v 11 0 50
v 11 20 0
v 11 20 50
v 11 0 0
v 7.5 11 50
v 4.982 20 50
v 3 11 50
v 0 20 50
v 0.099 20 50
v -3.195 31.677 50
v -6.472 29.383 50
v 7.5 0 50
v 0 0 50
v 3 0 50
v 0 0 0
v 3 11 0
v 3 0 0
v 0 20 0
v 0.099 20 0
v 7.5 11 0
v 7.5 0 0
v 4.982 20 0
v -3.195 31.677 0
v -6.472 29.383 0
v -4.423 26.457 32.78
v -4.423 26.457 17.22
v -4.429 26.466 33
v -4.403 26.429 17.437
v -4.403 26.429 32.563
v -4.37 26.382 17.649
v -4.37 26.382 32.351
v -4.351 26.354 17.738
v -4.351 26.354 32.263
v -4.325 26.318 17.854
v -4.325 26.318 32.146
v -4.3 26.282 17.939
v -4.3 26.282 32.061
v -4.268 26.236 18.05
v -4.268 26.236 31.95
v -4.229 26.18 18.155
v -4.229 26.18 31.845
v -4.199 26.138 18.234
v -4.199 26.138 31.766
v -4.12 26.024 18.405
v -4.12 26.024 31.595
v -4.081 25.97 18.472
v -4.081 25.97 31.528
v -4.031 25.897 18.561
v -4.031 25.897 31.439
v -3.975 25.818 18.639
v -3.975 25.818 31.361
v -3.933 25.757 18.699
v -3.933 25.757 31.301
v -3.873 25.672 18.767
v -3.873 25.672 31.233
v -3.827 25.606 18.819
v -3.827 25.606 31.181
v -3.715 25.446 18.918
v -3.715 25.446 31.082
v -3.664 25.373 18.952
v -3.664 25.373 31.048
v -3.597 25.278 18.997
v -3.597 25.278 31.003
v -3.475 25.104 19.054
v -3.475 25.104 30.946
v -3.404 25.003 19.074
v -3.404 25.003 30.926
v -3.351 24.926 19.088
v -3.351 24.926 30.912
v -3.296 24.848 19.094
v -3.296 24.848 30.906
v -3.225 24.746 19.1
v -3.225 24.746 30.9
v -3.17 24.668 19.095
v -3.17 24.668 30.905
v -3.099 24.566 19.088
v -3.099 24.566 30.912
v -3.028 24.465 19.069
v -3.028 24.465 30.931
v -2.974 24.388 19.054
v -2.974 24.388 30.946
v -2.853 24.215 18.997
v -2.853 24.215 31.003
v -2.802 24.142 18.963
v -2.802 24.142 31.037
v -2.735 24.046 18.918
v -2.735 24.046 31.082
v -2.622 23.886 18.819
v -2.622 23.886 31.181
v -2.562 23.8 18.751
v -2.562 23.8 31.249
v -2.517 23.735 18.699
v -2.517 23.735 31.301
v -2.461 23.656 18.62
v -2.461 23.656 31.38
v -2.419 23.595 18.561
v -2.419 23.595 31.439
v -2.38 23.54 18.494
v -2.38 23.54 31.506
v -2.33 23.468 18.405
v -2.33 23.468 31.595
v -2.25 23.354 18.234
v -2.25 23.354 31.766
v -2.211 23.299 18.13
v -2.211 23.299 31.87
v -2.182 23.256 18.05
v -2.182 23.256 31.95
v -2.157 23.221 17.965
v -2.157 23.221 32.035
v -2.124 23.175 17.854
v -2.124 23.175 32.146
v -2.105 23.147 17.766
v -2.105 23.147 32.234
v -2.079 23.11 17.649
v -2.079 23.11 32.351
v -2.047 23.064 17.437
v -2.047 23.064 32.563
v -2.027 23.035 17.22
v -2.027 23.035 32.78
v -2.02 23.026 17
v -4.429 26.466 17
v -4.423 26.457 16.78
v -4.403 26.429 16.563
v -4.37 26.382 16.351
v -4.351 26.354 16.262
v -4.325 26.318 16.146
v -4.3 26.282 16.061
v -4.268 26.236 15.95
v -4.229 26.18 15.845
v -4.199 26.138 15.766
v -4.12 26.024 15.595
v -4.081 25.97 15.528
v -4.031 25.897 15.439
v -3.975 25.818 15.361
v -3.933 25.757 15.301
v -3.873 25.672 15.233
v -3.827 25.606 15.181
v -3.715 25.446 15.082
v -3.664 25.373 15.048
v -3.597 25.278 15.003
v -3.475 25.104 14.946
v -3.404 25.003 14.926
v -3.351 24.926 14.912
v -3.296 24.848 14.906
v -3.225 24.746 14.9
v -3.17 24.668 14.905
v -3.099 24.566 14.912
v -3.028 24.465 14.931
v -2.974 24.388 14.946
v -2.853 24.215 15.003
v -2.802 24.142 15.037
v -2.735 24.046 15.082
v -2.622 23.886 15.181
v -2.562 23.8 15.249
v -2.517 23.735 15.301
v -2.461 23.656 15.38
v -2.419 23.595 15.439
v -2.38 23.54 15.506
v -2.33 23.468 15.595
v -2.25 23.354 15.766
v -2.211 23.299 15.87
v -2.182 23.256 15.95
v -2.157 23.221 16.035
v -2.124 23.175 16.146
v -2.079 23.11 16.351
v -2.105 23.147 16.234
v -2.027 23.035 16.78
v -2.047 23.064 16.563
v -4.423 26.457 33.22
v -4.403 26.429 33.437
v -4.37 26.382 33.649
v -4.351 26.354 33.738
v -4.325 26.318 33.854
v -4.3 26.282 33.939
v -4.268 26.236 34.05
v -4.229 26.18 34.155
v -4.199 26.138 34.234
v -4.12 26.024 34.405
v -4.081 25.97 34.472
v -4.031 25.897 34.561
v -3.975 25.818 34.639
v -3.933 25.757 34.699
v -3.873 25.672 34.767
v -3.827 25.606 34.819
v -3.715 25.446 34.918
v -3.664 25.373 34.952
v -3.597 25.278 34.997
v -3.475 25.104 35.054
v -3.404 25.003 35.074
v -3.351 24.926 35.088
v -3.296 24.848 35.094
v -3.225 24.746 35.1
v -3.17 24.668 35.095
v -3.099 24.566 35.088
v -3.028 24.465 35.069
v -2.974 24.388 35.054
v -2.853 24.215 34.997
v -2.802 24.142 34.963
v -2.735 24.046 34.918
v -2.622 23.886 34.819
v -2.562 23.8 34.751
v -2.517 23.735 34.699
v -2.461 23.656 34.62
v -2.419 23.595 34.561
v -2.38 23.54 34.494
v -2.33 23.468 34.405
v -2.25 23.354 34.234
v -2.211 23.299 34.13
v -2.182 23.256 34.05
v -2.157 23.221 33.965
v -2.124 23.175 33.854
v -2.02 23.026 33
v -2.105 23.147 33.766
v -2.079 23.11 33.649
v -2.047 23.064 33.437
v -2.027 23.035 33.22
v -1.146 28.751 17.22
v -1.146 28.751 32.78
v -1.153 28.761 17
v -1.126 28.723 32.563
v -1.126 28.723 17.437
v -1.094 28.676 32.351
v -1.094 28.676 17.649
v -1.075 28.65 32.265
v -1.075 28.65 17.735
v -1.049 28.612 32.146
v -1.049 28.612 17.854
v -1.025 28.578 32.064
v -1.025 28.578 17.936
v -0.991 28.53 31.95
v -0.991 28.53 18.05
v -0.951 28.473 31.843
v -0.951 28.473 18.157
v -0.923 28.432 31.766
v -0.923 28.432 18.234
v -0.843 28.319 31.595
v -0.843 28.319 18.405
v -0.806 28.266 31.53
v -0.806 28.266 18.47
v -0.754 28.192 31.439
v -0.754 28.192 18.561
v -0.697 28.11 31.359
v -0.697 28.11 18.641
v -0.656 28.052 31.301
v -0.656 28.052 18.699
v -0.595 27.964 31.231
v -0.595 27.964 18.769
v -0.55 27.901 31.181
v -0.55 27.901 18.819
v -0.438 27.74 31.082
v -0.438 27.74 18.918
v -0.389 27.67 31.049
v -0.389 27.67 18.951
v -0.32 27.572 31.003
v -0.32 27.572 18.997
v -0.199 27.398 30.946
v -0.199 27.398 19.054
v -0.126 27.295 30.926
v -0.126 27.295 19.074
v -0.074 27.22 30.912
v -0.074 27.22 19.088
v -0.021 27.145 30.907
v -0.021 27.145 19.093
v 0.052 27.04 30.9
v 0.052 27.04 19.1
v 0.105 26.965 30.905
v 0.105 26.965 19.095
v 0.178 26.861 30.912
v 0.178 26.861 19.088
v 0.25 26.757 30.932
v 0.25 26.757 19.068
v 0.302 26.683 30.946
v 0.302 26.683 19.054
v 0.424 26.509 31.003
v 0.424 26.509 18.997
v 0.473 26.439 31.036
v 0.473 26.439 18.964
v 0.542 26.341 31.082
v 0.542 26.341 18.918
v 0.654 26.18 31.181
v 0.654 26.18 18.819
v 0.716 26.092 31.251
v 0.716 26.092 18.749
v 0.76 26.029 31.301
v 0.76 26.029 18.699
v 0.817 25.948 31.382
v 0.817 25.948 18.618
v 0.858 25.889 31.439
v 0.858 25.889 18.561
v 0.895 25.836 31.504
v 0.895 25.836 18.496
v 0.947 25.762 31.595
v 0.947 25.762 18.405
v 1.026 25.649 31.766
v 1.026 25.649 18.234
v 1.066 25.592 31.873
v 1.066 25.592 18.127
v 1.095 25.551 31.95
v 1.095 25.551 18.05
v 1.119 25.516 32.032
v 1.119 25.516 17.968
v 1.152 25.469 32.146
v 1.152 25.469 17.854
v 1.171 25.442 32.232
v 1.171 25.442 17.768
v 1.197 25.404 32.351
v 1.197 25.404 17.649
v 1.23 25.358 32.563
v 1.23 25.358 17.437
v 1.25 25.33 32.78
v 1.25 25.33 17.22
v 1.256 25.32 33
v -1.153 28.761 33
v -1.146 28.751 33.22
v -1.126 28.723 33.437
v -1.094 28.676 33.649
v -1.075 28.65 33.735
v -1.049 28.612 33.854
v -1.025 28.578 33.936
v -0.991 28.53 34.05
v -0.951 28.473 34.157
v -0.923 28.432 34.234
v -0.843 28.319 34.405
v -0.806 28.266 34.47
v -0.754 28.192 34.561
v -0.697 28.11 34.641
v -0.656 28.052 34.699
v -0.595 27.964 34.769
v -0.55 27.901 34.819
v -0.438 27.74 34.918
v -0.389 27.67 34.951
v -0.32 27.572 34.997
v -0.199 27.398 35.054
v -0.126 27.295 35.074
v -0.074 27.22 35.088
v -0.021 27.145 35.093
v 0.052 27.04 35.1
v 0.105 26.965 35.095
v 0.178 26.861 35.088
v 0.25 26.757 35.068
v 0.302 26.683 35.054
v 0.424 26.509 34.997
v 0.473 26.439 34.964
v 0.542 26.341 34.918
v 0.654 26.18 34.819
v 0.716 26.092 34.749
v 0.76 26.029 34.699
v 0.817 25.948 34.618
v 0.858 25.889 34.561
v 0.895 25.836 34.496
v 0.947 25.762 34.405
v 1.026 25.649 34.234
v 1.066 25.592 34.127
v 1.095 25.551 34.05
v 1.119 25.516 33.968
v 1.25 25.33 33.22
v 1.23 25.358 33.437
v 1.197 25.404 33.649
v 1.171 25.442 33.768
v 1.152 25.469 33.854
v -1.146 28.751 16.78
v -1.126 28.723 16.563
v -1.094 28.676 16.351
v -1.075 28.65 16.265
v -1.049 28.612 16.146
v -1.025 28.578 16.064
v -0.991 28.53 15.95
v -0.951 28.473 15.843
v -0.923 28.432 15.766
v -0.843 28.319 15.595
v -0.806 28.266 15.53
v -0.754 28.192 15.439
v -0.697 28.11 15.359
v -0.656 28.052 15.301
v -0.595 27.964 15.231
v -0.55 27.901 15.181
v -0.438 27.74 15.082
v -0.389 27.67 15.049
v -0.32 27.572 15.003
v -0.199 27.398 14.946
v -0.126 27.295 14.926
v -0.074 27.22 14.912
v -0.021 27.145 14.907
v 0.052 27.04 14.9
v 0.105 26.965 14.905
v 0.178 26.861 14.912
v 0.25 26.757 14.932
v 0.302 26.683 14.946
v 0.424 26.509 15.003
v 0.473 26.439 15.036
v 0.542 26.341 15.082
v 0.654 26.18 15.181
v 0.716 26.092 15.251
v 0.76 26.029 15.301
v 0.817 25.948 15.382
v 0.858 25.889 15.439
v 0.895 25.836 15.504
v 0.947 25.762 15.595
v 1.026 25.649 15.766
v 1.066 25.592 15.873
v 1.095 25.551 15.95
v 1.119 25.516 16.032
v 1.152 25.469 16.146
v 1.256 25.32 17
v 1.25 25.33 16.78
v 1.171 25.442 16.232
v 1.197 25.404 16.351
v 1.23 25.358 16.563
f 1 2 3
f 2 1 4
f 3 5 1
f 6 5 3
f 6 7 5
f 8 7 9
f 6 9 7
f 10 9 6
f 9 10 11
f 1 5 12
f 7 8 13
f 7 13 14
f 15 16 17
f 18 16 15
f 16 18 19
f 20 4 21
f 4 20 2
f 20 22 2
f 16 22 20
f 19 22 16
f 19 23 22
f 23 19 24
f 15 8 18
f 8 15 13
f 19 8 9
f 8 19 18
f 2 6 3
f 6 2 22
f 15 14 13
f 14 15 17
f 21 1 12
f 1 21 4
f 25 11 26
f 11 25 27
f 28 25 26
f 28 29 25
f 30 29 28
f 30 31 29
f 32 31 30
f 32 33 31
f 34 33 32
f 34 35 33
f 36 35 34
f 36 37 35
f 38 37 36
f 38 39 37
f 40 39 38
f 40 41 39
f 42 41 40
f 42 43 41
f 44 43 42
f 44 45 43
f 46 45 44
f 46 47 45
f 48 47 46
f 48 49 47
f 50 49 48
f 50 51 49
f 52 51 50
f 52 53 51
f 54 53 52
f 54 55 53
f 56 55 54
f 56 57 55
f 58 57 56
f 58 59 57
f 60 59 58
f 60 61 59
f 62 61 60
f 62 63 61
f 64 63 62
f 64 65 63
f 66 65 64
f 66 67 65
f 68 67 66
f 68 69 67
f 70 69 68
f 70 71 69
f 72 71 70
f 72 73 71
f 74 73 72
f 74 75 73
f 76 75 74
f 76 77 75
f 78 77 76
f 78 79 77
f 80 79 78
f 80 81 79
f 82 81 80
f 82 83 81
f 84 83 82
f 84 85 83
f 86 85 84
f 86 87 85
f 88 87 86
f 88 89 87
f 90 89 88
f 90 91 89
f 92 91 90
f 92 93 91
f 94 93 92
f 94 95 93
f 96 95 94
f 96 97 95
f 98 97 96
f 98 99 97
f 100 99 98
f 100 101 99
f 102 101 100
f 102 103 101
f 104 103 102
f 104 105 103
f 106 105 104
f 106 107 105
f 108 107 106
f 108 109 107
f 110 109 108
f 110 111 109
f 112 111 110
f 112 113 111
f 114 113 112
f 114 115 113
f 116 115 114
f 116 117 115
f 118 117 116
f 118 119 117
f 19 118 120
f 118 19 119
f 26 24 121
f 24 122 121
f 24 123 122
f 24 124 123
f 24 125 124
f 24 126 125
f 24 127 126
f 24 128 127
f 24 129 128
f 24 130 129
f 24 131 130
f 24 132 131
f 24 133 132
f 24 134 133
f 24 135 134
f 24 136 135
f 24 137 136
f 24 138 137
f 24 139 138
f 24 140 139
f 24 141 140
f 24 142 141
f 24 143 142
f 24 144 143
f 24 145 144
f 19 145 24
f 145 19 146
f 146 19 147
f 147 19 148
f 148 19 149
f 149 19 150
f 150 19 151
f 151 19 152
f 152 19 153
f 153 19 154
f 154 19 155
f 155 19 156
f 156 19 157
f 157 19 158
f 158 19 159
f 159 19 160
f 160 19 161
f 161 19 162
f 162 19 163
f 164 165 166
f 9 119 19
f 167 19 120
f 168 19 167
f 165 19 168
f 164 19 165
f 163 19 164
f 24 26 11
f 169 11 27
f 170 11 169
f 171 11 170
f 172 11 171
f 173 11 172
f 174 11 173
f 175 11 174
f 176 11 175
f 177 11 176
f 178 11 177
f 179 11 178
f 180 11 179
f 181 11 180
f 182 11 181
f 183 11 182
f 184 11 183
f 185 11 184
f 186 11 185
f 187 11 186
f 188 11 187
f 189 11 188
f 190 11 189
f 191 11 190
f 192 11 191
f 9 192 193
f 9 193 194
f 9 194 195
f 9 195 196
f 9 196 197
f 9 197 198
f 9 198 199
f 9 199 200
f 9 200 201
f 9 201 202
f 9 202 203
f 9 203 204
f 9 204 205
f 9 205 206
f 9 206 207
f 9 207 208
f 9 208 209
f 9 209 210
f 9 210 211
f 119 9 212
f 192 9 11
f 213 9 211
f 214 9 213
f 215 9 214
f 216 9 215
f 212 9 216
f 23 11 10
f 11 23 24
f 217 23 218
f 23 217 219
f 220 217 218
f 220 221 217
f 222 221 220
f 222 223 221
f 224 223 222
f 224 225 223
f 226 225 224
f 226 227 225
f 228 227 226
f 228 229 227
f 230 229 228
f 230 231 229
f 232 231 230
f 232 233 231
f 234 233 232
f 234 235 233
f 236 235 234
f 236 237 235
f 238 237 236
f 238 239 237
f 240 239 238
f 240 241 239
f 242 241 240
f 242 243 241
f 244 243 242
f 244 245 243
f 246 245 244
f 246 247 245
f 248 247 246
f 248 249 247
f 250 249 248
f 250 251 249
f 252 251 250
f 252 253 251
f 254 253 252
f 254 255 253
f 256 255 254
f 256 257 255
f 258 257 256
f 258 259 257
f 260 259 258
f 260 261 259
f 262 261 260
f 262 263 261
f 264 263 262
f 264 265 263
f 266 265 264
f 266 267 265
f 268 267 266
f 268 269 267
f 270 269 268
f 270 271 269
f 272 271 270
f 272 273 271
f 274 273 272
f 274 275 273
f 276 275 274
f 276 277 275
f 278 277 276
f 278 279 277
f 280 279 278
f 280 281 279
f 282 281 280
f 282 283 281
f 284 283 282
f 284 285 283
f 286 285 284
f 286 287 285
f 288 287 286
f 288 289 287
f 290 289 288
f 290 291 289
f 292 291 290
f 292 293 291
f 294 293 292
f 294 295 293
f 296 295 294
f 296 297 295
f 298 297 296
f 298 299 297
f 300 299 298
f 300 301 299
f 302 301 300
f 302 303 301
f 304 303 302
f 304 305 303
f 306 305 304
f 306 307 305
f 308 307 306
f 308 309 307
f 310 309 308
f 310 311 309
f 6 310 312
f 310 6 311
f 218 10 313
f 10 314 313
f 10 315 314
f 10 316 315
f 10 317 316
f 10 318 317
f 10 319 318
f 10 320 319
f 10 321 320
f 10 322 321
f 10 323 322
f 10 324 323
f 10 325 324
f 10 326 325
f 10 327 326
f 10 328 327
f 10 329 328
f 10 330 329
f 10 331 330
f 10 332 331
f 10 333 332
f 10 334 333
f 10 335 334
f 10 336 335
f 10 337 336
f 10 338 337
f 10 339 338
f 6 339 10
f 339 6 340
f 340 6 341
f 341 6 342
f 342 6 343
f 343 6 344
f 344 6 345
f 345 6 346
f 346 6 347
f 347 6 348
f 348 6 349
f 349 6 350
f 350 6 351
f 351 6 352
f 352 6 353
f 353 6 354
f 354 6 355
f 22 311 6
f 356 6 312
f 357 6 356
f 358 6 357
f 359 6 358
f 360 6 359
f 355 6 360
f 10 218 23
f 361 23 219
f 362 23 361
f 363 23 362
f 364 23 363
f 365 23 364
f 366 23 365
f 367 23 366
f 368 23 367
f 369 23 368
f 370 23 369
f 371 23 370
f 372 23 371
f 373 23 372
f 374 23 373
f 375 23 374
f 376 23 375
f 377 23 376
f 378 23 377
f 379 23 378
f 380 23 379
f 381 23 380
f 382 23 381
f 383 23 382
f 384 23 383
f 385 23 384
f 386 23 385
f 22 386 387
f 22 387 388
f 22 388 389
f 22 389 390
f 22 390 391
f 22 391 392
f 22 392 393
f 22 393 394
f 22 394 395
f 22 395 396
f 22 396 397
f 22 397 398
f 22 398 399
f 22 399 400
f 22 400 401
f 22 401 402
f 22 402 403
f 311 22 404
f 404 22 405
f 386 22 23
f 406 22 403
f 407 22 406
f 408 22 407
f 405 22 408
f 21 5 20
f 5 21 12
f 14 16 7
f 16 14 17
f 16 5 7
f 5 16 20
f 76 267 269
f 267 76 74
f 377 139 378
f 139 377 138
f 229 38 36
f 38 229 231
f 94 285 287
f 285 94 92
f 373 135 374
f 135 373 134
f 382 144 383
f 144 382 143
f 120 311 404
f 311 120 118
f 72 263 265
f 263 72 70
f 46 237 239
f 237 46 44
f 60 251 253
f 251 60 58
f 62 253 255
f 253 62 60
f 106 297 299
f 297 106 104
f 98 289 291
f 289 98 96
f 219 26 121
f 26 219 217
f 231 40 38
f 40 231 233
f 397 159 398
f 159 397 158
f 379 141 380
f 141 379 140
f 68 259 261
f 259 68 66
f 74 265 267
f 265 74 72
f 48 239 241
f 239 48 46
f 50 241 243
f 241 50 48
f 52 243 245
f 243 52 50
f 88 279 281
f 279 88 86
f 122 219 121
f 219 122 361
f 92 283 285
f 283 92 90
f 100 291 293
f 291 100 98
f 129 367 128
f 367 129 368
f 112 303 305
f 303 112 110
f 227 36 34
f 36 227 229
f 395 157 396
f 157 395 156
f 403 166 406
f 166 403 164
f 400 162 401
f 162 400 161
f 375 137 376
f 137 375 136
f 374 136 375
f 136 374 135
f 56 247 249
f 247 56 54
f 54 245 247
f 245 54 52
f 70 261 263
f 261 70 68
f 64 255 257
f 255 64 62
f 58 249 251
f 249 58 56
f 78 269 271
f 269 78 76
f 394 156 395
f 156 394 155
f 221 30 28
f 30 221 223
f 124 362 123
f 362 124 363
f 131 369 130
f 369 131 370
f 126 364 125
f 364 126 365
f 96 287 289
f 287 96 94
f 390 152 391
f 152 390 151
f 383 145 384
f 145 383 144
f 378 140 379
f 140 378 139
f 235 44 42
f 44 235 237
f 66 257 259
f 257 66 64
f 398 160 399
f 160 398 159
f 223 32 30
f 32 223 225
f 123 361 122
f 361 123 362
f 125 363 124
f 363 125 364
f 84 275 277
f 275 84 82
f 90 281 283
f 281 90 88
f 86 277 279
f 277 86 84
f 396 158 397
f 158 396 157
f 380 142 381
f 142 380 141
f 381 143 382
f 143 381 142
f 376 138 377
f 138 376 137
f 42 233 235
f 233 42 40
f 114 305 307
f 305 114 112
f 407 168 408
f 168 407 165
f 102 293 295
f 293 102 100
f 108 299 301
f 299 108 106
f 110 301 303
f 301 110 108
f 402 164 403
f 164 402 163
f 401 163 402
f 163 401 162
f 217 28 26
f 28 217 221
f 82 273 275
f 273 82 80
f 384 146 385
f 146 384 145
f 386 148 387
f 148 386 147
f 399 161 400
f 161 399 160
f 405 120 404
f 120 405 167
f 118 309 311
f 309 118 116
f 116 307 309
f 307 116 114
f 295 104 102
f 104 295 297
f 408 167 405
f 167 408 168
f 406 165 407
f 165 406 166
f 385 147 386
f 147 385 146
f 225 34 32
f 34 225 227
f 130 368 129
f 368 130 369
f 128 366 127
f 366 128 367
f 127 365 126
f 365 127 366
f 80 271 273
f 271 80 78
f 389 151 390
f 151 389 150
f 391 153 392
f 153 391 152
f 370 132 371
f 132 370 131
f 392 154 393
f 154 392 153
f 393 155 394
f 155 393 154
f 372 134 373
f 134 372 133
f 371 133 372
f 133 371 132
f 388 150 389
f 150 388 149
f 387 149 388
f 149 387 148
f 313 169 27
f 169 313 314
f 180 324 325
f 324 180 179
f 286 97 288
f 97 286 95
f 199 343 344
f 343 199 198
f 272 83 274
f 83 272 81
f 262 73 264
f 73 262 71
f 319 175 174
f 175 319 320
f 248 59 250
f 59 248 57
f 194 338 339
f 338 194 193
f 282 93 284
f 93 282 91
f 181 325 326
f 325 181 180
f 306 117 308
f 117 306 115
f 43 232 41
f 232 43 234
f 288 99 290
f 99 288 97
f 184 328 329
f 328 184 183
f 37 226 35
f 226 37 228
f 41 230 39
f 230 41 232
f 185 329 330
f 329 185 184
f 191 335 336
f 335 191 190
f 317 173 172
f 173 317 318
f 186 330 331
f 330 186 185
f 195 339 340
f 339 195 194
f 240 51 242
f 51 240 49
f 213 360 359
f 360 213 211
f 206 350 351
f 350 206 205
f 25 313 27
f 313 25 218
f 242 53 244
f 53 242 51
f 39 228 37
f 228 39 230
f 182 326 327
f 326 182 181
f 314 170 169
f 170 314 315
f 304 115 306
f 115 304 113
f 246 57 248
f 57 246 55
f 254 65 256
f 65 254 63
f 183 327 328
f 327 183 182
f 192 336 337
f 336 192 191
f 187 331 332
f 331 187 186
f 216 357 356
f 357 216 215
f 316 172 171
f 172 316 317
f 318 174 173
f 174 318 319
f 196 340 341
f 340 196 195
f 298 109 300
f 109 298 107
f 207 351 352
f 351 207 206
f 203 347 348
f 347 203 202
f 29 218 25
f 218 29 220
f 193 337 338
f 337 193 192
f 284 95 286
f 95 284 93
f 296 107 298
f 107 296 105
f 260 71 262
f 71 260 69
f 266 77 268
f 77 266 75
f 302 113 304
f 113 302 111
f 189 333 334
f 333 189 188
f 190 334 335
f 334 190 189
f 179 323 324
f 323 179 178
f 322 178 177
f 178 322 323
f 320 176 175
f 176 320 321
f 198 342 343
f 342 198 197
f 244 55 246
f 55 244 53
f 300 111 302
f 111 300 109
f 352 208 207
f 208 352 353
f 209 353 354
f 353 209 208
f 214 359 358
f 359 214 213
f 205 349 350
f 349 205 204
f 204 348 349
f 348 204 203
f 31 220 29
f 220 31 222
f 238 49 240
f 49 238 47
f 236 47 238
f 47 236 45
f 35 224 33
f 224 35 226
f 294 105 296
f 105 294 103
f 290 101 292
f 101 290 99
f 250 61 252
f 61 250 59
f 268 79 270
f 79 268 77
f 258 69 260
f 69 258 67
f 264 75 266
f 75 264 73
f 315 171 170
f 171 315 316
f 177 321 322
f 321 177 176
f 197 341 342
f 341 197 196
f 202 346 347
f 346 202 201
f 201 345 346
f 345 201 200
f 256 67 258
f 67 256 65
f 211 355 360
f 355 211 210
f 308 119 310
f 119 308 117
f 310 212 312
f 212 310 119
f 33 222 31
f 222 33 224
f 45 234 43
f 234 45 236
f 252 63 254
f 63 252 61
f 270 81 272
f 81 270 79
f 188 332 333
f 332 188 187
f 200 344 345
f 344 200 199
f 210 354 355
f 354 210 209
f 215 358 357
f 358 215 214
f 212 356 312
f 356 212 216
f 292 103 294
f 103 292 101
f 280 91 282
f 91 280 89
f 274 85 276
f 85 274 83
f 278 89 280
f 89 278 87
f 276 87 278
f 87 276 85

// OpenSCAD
/*
AQUARIUM FAN MOUNT for 2 120mm computer fans
*/
breite=50;
AQWandstaerke=4.5;
bohrung=4.2;
bohrungsabstand=8;
difference(){
union(){
    cube([11,20,breite]);
    translate([5,13,0])rotate(35,[0,0,1])cube([4,20,breite]);    
    
}
translate([3,-1,-1])cube([AQWandstaerke,12,202]);
translate([-20,13,25-bohrungsabstand])
rotate(90+35,[0,0,1])
rotate(90,[1,0,0])cylinder($fn=60,h=300,d=bohrung,center=true);

translate([-20,13,25+bohrungsabstand])
rotate(90+35,[0,0,1])
rotate(90,[1,0,0])cylinder($fn=60,h=300,d=bohrung,center=true);
}
